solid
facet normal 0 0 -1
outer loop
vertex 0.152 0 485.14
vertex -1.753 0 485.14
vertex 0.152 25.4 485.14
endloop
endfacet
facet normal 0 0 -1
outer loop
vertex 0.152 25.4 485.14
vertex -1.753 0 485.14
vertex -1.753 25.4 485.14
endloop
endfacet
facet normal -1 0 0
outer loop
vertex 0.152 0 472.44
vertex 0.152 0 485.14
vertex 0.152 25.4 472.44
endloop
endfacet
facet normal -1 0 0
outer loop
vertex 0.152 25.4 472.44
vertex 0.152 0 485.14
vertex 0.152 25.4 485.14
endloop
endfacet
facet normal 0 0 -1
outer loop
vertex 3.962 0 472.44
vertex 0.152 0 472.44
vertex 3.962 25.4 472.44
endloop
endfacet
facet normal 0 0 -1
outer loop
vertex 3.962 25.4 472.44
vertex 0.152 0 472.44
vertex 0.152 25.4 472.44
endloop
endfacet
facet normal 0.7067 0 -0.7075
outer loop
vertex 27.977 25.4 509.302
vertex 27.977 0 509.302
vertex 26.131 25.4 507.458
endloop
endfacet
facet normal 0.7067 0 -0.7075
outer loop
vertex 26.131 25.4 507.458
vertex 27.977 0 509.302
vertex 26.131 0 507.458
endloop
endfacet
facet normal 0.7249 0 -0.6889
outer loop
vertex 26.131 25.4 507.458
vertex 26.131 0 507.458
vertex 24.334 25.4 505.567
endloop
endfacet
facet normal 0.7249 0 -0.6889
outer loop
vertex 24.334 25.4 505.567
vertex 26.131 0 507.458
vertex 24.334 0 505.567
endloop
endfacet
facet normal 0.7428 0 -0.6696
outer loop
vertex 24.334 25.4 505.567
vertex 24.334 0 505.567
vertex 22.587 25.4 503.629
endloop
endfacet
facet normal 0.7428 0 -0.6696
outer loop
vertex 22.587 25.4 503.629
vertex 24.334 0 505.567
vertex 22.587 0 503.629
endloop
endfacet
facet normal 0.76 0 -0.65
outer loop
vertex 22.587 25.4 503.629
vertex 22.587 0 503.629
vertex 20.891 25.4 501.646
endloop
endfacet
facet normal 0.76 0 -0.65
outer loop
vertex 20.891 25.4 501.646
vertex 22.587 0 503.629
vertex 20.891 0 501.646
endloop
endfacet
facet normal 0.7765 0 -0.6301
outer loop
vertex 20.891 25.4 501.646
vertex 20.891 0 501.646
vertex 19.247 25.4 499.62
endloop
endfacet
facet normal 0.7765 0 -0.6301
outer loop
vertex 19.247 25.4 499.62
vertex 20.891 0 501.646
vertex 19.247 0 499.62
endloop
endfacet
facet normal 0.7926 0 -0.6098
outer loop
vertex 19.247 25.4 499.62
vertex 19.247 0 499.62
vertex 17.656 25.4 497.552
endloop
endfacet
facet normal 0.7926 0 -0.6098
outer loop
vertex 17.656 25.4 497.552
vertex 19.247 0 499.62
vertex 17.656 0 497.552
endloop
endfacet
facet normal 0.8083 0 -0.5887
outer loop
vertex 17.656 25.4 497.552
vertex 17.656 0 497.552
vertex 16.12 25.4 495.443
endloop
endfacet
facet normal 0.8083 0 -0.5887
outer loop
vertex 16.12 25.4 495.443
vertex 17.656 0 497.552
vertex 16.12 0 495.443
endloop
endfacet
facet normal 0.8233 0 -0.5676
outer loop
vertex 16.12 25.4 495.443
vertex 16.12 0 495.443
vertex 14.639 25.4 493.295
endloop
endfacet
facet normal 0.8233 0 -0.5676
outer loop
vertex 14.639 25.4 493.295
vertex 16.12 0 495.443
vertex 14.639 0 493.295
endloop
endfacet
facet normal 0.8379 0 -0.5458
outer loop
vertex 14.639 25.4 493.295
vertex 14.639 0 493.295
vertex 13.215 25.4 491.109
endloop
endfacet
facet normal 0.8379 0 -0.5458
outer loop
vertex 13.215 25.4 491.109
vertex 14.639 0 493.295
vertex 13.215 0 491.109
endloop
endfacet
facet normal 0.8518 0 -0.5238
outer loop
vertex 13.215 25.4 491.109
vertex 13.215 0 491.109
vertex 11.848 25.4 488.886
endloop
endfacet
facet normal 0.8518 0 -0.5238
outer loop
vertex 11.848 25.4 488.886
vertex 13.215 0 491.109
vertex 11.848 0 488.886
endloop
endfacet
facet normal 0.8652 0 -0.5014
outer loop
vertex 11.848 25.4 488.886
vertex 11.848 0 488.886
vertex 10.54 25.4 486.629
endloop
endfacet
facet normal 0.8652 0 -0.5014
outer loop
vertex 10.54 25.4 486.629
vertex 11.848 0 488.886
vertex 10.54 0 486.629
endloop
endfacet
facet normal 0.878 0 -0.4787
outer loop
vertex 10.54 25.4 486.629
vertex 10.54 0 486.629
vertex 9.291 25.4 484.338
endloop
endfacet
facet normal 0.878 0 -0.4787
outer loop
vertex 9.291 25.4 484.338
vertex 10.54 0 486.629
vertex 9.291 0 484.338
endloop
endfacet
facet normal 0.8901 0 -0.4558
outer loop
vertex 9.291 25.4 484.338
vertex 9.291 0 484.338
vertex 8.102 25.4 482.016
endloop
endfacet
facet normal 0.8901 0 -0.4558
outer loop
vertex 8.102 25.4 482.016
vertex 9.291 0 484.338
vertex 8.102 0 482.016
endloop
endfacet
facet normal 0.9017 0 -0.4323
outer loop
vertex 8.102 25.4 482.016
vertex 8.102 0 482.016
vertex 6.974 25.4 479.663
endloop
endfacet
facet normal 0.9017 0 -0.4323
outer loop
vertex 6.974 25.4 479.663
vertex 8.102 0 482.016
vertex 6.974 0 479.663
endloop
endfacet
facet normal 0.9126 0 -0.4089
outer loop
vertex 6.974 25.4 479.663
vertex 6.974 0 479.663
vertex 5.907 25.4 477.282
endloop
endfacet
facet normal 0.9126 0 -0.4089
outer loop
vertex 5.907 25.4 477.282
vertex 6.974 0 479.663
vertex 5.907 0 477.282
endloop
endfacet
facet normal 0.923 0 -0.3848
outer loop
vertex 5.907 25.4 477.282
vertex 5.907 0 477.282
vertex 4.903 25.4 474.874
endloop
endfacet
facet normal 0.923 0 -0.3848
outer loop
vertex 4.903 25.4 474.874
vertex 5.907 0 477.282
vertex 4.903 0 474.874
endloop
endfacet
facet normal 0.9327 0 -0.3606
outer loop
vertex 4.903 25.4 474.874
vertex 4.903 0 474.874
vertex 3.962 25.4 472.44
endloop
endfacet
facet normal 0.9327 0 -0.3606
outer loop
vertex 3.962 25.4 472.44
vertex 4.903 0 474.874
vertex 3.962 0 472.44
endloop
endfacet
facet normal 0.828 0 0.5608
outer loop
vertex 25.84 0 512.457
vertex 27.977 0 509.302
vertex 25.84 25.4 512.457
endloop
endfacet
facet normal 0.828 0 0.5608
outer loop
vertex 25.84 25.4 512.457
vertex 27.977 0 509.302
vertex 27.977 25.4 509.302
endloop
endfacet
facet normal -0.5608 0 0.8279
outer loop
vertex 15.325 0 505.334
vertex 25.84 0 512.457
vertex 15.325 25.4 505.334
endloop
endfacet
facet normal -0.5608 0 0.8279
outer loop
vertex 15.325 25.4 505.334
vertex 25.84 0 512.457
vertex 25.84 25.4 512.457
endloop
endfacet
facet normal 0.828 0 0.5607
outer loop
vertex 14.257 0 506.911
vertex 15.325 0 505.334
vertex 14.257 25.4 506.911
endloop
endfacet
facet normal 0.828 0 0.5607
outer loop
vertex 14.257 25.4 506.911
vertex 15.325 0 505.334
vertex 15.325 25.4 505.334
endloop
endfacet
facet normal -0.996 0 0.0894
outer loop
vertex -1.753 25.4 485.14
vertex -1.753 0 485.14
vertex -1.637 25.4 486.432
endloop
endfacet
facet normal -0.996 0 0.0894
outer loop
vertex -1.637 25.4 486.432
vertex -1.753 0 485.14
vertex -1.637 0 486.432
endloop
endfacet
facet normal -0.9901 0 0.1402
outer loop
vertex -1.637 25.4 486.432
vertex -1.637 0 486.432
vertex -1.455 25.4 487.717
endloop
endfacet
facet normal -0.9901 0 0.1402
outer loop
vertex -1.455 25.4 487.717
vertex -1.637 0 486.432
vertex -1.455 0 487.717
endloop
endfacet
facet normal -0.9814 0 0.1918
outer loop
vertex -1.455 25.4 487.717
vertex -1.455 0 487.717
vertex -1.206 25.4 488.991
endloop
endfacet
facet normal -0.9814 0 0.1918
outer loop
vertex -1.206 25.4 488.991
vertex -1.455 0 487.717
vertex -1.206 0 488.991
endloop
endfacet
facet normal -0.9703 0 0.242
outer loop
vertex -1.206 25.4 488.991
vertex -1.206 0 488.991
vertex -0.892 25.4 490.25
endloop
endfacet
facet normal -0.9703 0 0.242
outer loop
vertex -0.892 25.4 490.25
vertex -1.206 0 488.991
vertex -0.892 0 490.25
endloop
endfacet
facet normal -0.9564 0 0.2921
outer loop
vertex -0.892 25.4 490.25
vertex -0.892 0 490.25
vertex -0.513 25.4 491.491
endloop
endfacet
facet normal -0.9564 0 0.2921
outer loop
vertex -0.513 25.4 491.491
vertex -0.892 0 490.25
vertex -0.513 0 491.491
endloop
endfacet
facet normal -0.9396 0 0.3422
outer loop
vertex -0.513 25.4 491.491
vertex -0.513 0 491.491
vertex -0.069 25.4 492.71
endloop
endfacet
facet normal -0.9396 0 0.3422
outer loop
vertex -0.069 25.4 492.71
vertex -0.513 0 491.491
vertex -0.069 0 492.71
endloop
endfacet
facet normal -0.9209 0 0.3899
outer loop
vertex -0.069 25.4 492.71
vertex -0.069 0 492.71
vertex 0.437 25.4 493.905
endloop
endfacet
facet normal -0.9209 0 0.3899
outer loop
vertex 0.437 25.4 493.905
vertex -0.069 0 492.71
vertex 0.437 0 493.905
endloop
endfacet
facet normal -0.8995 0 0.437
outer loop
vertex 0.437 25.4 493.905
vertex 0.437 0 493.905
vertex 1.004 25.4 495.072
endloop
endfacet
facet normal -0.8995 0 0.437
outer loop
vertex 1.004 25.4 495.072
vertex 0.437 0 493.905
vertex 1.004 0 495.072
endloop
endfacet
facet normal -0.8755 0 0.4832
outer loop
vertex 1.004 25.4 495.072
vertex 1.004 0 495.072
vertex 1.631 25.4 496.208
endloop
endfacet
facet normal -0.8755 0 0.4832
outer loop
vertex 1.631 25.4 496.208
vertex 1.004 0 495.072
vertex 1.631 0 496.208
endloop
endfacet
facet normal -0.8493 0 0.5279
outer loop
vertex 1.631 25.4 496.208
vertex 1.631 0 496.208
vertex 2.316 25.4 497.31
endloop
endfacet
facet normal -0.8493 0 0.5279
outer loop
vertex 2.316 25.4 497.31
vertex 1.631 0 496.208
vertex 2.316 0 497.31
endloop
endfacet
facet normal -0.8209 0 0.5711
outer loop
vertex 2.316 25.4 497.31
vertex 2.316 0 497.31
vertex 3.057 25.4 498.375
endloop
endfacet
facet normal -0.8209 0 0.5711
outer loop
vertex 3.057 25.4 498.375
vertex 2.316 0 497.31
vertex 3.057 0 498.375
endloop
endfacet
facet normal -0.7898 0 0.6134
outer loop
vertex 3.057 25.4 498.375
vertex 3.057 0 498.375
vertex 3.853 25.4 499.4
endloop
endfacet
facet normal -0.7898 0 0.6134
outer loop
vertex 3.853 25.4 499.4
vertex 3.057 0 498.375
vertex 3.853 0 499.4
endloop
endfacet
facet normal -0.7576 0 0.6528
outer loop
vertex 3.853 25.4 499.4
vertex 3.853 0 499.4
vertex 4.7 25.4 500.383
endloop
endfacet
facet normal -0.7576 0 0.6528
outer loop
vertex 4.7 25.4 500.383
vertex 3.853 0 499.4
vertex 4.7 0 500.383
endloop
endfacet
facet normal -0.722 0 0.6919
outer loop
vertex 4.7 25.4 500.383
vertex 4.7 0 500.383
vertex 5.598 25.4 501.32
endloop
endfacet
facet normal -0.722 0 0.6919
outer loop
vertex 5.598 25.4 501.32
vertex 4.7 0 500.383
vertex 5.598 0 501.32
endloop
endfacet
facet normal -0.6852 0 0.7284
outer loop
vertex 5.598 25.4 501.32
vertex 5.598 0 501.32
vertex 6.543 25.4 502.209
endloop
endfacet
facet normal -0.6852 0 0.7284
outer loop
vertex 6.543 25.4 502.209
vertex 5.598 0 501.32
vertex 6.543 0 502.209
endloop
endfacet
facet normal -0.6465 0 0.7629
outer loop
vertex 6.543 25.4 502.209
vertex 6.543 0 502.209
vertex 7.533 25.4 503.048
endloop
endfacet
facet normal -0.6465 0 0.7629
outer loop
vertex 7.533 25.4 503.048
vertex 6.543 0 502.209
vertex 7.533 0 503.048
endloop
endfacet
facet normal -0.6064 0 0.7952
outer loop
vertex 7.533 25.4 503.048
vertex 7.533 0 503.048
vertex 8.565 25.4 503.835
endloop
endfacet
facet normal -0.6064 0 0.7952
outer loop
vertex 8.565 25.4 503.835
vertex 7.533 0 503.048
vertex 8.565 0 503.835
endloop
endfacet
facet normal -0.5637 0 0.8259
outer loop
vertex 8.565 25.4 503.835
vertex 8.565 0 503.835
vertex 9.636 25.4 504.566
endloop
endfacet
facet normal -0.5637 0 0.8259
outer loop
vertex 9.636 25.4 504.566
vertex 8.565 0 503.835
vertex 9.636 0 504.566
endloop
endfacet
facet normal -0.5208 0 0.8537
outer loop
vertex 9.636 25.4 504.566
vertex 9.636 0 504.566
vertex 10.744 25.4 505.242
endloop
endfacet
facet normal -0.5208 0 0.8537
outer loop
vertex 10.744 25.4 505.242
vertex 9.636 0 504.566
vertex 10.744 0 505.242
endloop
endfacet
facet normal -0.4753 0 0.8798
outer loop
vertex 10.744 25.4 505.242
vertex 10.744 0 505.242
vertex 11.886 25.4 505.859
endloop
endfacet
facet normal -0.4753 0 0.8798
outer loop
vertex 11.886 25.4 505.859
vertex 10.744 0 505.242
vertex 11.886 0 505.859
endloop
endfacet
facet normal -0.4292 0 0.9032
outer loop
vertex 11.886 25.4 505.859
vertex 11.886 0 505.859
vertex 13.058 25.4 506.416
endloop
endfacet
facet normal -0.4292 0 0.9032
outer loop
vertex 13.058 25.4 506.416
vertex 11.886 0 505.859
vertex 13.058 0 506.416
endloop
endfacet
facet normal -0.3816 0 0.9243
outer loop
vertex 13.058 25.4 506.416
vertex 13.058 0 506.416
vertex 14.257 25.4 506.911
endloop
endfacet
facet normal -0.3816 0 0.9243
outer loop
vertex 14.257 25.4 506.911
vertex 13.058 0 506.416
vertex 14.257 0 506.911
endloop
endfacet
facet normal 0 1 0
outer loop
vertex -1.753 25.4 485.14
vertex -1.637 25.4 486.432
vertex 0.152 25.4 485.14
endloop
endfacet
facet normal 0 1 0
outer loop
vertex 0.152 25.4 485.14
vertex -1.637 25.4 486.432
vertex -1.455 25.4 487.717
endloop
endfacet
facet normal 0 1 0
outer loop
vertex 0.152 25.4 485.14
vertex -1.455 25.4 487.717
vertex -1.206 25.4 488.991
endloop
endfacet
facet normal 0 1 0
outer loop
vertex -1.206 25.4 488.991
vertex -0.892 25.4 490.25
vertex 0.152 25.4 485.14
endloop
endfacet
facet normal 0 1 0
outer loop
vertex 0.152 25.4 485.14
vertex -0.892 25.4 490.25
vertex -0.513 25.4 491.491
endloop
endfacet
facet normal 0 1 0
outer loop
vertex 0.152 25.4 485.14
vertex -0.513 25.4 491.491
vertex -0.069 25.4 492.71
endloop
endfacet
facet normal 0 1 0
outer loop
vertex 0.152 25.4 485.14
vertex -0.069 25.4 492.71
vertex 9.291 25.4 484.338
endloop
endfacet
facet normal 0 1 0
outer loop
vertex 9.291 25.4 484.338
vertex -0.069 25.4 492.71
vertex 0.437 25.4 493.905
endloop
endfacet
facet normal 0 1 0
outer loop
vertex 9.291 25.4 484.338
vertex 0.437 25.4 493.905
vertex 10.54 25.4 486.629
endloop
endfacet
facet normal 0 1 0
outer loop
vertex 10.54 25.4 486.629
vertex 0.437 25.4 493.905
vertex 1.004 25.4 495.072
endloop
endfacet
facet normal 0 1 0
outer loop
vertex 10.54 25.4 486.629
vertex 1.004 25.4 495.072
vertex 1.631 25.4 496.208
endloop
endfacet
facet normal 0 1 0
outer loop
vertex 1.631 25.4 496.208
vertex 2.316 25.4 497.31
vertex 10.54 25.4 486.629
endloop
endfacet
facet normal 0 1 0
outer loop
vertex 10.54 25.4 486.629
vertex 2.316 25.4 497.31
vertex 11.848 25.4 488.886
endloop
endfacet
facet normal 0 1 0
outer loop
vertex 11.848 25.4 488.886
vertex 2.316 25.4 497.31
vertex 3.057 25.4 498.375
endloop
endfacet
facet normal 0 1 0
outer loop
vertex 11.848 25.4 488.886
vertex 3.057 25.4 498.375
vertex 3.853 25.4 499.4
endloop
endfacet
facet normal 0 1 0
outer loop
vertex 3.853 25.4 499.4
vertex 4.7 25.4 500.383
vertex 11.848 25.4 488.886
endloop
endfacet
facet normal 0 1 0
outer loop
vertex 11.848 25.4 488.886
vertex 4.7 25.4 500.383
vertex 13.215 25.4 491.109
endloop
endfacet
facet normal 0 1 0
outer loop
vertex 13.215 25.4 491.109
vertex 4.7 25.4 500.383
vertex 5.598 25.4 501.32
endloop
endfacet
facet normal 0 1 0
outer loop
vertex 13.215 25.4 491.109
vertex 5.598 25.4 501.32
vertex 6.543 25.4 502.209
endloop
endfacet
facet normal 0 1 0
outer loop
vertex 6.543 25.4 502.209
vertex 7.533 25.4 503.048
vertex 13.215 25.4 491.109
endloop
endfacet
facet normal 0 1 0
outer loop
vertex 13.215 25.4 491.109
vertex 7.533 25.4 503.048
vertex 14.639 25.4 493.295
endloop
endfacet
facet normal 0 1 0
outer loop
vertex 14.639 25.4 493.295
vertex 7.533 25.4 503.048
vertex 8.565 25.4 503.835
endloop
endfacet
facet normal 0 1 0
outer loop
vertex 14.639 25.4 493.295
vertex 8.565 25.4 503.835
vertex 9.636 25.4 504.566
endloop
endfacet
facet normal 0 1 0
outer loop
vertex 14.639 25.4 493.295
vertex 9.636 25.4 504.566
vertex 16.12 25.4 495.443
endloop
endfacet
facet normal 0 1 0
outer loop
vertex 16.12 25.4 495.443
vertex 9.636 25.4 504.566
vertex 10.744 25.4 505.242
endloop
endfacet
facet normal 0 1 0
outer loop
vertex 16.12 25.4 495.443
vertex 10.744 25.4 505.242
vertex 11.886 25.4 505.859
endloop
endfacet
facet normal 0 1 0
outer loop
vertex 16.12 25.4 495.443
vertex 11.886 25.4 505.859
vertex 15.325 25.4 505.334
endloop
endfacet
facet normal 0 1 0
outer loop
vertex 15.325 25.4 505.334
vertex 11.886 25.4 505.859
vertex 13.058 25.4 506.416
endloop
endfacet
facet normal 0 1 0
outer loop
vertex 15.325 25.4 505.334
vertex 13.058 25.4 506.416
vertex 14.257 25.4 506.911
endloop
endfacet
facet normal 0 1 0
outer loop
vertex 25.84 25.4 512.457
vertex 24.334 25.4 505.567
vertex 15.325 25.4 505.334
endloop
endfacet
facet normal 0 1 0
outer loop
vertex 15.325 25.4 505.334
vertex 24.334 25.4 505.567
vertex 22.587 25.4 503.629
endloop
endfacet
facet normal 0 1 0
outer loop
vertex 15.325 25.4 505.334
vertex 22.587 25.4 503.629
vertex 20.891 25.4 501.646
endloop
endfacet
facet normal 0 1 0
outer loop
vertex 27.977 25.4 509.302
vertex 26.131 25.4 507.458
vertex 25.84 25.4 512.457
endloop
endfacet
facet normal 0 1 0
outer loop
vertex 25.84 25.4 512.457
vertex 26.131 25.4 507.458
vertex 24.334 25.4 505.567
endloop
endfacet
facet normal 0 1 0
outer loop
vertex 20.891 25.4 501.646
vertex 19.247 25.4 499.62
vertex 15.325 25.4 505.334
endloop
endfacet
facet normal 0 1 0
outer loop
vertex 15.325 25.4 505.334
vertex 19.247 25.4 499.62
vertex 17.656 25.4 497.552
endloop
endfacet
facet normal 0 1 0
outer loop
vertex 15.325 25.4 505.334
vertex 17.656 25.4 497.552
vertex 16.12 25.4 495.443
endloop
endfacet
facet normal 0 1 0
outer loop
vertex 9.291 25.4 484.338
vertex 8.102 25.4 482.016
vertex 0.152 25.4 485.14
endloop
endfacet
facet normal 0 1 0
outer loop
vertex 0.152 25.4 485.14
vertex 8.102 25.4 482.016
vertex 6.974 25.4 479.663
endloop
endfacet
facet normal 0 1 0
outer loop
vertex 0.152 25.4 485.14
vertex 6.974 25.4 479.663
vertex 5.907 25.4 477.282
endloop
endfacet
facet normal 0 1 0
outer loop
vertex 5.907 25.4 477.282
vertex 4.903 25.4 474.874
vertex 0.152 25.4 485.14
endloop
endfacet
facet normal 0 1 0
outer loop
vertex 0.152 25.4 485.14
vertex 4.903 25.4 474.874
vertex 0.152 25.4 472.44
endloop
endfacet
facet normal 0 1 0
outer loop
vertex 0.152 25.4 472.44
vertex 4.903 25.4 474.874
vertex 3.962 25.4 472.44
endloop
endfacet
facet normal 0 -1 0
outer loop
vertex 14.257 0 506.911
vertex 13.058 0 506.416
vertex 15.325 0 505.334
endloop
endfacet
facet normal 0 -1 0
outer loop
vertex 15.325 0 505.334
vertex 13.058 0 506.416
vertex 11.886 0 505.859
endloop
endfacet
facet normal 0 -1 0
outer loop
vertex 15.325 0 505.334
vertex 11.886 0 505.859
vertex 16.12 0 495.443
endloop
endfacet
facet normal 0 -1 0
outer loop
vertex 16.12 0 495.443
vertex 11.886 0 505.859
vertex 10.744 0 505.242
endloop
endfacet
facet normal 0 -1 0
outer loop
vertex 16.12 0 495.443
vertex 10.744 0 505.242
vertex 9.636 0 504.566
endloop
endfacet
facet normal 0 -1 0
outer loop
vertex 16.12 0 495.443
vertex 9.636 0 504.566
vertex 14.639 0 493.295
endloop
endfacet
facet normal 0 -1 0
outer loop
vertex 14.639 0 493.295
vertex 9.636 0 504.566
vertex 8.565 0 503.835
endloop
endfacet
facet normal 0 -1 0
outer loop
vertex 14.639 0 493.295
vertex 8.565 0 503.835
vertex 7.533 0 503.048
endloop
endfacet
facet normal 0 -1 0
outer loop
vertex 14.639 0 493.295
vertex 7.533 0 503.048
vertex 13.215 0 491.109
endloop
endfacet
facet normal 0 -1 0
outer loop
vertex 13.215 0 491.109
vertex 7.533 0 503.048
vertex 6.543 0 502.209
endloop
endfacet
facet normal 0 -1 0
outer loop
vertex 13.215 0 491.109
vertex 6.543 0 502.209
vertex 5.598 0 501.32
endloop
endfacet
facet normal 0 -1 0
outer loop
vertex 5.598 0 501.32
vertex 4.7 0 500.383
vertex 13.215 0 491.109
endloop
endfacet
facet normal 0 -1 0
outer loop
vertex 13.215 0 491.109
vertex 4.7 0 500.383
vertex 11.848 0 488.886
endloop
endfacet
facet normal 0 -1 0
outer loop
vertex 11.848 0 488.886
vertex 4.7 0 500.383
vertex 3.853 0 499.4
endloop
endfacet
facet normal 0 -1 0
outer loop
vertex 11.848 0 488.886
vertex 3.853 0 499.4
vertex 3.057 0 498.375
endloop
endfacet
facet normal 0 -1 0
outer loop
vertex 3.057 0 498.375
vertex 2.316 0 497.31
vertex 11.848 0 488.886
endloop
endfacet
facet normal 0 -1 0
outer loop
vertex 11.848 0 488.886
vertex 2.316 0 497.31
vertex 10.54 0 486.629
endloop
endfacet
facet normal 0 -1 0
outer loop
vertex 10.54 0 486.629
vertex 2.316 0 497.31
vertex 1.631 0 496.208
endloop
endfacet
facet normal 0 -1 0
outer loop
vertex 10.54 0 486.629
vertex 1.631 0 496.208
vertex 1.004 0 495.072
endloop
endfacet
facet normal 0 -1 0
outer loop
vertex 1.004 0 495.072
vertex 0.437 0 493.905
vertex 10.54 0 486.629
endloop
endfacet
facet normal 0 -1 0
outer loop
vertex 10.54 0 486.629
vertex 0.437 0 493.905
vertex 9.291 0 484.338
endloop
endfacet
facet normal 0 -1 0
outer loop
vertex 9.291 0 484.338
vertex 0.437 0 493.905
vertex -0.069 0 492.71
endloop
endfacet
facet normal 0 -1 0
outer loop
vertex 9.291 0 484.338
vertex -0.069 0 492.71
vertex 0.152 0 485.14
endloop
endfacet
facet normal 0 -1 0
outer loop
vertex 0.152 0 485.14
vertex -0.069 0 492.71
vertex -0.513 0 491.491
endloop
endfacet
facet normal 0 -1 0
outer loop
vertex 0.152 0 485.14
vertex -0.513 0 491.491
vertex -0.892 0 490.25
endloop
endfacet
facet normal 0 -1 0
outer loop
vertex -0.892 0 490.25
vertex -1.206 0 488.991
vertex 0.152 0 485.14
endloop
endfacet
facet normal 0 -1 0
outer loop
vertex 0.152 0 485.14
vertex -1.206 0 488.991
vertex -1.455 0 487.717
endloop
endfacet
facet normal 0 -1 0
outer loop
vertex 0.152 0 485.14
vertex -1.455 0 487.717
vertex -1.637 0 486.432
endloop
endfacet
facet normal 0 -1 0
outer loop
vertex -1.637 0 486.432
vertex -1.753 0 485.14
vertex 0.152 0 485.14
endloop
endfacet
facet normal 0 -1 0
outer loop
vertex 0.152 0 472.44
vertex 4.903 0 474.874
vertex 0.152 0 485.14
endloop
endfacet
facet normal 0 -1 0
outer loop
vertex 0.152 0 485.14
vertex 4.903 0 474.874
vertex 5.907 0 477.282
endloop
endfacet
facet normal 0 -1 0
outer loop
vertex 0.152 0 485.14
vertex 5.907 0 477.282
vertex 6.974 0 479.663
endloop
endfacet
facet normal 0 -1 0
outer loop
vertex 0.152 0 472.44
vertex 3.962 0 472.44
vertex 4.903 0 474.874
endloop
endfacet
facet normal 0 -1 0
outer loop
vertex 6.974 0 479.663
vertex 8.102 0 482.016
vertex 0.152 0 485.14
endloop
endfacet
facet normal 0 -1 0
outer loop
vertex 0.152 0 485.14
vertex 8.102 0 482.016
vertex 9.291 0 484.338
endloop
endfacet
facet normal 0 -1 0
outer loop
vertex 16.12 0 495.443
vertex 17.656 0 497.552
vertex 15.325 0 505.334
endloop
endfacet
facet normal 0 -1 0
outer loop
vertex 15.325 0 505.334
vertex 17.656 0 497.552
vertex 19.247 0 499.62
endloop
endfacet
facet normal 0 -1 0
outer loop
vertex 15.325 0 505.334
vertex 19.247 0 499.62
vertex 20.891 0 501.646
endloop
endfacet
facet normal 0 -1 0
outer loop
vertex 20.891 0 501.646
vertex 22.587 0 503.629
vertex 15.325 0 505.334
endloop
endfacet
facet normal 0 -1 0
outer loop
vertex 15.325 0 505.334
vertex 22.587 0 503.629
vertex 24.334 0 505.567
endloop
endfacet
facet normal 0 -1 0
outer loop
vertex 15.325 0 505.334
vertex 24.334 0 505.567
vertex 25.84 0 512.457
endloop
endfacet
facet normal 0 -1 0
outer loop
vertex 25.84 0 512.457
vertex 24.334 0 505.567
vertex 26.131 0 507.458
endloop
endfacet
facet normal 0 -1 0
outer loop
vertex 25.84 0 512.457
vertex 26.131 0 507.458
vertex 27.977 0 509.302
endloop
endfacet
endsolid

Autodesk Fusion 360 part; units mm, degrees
sketch "Rear Most Corner" plane through (0, 0, 0) normal (0, 1, 0) x (1, 0, 0)
  circle A0 centre (23.1977, -483.5644) radius 25 construction
  line L0 (14.257, -506.911) -> (24.7715, -514.0339) construction
  line L1 (407.957, -773.6165) -> (14.257, -506.911) construction
  line L2 (-1.7526, -485.14) -> (-1.7526, -472.44) construction
  line L3 (24.7715, -514.0339) -> (14.257, -506.911) construction
  line L4 (14.257, -506.911) -> (15.3255, -505.3338)
  line L5 (15.3255, -505.3338) -> (25.84, -512.4567)
  line L6 (25.84, -512.4567) -> (24.7715, -514.0339) construction
  line L7 (-1.7526, -485.14) -> (0.1524, -485.14)
  line L8 (0.1524, -485.14) -> (0.1524, -472.44)
  line L9 (0.1524, -472.44) -> (-1.7526, -472.44) construction
  line L10 (-1.7526, -472.44) -> (-1.7526, -485.14) construction
  line L11 (-1.7526, -485.14) -> (0.1524, -485.14)
  line L12 (14.257, -506.911) -> (15.3255, -505.3338)
  arc A1 (-1.7526, -485.14) -> (14.257, -506.911) centre (23.1977, -483.5644) ccw
  line L13 (25.84, -512.4567) -> (27.9768, -509.3024)
  line L14 (0.1524, -472.44) -> (3.9624, -472.44)
  line L15 (3.0571, -498.3751) -> (23.1977, -483.5644) construction
  arc A2 (3.9624, -472.44) -> (27.9768, -509.3024) centre (97.8219, -437.5475) ccw
  point P0 (13.1274, -490.9697)
extrude "Extrude1" add sketch "Rear Most Corner" along normal blind 25.4
